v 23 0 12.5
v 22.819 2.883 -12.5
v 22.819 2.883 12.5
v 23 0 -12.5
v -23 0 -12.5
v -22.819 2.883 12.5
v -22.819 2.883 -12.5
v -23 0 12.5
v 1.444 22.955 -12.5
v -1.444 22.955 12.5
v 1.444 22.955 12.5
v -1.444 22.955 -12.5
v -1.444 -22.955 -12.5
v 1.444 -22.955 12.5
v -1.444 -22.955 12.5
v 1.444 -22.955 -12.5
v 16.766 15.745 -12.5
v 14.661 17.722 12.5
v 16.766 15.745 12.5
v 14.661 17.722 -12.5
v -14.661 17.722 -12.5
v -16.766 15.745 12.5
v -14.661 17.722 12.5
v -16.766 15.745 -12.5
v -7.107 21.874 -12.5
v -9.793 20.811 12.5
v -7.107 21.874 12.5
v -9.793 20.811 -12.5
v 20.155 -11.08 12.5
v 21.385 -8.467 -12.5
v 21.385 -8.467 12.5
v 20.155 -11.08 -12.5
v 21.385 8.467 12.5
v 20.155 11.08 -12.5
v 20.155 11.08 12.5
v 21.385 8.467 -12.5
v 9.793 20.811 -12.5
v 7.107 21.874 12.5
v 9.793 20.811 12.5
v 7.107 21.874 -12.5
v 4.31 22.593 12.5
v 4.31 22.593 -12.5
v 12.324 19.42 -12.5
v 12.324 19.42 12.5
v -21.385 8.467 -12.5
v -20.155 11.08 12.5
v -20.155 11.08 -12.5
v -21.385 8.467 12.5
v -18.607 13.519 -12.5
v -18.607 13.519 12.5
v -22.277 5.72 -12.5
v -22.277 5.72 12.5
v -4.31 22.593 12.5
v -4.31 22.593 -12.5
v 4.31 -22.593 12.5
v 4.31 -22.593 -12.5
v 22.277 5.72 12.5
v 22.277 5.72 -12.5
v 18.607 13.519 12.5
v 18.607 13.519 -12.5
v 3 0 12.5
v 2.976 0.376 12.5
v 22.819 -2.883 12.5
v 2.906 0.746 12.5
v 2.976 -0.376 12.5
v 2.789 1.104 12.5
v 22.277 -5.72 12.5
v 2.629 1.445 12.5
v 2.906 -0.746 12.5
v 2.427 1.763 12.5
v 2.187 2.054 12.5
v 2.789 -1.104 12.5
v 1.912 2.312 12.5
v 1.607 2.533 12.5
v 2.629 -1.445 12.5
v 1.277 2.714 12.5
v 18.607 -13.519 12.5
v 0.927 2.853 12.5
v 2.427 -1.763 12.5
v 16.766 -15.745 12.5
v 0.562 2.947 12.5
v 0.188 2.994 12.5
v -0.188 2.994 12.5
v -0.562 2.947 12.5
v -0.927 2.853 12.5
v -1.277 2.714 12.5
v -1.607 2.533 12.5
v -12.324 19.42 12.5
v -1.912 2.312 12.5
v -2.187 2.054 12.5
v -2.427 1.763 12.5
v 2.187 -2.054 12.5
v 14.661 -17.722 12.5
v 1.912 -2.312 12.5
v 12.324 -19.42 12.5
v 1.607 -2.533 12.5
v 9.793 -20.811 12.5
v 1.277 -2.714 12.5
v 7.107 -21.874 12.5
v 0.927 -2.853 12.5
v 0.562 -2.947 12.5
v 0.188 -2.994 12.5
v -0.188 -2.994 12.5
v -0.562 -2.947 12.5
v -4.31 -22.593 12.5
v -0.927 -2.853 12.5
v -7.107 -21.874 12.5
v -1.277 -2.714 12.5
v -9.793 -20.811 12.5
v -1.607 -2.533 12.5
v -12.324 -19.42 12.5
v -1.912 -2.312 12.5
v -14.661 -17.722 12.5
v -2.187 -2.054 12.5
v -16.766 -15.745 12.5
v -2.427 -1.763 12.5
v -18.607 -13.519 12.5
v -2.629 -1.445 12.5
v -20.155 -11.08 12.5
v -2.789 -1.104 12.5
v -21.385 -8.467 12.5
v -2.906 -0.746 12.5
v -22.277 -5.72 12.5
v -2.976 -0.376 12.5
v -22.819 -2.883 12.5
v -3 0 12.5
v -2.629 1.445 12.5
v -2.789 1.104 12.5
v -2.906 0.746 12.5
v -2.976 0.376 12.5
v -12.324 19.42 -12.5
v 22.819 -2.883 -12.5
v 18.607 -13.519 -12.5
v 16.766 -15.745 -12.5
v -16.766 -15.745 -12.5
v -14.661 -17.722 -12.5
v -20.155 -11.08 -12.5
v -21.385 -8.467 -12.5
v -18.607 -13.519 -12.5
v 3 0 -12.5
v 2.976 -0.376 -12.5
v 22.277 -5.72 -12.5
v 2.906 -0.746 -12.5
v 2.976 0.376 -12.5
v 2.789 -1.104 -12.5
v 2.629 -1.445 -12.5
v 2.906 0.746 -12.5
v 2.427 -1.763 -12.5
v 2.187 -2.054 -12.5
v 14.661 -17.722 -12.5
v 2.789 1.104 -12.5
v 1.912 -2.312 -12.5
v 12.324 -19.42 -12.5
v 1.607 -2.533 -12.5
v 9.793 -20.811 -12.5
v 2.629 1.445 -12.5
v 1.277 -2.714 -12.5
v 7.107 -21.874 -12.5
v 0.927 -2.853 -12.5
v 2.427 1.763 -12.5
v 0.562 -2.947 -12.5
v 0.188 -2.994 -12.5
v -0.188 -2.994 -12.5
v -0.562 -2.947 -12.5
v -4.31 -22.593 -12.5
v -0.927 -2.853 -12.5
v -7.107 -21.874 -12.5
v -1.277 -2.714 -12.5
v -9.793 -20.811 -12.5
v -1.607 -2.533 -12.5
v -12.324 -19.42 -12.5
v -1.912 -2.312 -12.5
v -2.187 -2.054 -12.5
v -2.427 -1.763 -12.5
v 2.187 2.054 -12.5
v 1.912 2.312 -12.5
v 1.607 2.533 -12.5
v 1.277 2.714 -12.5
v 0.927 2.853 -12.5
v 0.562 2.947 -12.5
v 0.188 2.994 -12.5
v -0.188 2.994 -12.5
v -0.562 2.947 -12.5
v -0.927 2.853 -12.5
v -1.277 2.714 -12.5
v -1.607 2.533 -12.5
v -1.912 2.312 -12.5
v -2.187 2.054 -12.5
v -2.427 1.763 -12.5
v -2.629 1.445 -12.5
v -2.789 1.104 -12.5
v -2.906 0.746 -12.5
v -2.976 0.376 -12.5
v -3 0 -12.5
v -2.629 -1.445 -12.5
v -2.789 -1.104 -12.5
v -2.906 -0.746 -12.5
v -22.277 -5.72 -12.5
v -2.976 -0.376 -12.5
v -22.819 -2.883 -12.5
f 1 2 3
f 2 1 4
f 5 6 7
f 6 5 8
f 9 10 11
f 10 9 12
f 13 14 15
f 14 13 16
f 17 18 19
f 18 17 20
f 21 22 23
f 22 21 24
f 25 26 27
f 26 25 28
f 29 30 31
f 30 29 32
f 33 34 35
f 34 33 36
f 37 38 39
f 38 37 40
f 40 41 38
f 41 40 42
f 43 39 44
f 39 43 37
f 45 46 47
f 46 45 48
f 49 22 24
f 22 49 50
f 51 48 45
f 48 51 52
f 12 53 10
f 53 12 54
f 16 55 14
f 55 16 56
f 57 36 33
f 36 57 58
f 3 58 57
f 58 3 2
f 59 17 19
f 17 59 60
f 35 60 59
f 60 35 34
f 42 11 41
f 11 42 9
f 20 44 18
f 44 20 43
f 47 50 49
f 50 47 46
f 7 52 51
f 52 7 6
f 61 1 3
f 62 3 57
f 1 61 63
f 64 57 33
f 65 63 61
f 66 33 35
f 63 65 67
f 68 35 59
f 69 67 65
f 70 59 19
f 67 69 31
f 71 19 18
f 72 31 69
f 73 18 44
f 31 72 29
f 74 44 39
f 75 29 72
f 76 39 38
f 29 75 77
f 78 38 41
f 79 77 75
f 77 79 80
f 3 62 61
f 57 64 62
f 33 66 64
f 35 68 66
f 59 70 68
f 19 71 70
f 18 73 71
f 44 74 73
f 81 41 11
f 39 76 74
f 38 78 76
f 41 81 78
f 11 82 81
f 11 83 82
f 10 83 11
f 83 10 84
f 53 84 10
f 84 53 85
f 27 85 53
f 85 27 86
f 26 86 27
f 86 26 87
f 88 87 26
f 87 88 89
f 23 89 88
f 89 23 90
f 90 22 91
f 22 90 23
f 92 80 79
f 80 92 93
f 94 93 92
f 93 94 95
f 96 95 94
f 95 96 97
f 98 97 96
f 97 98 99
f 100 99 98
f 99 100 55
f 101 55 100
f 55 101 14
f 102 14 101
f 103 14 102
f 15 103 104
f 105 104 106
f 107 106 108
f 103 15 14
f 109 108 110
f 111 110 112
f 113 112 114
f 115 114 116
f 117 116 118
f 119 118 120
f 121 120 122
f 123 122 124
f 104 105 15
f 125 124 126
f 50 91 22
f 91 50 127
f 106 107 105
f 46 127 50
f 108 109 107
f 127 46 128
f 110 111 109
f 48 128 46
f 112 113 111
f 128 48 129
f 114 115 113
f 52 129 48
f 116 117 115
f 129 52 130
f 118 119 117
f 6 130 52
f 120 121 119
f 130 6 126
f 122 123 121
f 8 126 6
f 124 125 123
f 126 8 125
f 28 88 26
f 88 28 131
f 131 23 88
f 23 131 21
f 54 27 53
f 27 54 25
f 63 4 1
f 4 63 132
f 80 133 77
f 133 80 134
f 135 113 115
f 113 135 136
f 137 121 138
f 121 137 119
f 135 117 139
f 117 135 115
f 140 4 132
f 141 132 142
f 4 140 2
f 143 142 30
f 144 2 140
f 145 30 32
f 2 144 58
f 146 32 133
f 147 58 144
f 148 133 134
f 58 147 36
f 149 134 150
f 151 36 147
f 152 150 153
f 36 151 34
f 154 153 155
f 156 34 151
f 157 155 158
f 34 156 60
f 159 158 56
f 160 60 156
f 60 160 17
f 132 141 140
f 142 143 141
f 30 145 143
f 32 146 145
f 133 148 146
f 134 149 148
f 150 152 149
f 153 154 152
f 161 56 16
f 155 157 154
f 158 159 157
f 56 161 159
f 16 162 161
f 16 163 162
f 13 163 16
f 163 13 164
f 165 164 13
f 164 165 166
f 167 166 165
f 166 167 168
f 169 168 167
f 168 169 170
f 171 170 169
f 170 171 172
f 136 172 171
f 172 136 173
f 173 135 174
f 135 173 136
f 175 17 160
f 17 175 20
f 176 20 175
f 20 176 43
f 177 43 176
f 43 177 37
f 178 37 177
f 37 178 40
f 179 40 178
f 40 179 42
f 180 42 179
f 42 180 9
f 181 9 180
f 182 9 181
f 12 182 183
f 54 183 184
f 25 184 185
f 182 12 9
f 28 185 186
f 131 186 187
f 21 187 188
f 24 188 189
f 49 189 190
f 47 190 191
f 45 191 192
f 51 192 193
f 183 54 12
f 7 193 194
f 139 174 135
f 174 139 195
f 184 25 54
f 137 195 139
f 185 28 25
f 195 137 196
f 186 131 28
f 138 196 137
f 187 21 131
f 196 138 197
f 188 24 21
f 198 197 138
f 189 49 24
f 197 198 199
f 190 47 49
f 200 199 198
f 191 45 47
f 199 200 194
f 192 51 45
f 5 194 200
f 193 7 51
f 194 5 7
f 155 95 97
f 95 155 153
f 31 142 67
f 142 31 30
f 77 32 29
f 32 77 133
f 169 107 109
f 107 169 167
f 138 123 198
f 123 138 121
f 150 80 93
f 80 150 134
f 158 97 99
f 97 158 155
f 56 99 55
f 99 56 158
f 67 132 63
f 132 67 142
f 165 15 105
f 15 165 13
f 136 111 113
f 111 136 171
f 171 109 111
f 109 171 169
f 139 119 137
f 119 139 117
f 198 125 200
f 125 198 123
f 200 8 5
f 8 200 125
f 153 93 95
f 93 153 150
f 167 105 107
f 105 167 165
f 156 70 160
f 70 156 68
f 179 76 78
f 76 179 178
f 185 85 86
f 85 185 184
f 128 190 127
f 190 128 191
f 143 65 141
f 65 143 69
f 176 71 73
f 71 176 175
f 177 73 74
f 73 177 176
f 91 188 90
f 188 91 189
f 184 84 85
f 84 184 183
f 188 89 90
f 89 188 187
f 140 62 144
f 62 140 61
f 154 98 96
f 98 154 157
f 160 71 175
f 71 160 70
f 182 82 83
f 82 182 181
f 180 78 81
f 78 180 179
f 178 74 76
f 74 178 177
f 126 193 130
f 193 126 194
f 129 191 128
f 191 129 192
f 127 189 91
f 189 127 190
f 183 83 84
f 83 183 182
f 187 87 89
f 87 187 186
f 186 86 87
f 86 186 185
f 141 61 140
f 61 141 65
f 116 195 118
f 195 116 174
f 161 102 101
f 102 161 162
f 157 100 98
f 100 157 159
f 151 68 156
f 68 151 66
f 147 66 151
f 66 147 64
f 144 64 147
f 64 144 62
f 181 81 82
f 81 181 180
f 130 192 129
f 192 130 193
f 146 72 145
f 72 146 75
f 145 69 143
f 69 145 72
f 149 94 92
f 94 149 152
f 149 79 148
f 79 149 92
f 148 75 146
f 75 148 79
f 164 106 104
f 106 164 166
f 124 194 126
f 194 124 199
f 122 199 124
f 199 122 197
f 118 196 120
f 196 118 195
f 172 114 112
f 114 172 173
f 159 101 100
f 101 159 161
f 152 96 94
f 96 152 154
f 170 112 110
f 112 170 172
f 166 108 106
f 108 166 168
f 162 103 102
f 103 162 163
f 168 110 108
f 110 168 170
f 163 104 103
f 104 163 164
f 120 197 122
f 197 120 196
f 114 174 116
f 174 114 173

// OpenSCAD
$fn = 50;


difference() {
	union() {
		translate(v = [0, 0, -12.5000000000]) {
			cylinder(h = 25, r = 23.0000000000);
		}
	}
	union() {
		translate(v = [0, 0, -100.0000000000]) {
			cylinder(h = 200, r = 3.0000000000);
		}
	}
}
